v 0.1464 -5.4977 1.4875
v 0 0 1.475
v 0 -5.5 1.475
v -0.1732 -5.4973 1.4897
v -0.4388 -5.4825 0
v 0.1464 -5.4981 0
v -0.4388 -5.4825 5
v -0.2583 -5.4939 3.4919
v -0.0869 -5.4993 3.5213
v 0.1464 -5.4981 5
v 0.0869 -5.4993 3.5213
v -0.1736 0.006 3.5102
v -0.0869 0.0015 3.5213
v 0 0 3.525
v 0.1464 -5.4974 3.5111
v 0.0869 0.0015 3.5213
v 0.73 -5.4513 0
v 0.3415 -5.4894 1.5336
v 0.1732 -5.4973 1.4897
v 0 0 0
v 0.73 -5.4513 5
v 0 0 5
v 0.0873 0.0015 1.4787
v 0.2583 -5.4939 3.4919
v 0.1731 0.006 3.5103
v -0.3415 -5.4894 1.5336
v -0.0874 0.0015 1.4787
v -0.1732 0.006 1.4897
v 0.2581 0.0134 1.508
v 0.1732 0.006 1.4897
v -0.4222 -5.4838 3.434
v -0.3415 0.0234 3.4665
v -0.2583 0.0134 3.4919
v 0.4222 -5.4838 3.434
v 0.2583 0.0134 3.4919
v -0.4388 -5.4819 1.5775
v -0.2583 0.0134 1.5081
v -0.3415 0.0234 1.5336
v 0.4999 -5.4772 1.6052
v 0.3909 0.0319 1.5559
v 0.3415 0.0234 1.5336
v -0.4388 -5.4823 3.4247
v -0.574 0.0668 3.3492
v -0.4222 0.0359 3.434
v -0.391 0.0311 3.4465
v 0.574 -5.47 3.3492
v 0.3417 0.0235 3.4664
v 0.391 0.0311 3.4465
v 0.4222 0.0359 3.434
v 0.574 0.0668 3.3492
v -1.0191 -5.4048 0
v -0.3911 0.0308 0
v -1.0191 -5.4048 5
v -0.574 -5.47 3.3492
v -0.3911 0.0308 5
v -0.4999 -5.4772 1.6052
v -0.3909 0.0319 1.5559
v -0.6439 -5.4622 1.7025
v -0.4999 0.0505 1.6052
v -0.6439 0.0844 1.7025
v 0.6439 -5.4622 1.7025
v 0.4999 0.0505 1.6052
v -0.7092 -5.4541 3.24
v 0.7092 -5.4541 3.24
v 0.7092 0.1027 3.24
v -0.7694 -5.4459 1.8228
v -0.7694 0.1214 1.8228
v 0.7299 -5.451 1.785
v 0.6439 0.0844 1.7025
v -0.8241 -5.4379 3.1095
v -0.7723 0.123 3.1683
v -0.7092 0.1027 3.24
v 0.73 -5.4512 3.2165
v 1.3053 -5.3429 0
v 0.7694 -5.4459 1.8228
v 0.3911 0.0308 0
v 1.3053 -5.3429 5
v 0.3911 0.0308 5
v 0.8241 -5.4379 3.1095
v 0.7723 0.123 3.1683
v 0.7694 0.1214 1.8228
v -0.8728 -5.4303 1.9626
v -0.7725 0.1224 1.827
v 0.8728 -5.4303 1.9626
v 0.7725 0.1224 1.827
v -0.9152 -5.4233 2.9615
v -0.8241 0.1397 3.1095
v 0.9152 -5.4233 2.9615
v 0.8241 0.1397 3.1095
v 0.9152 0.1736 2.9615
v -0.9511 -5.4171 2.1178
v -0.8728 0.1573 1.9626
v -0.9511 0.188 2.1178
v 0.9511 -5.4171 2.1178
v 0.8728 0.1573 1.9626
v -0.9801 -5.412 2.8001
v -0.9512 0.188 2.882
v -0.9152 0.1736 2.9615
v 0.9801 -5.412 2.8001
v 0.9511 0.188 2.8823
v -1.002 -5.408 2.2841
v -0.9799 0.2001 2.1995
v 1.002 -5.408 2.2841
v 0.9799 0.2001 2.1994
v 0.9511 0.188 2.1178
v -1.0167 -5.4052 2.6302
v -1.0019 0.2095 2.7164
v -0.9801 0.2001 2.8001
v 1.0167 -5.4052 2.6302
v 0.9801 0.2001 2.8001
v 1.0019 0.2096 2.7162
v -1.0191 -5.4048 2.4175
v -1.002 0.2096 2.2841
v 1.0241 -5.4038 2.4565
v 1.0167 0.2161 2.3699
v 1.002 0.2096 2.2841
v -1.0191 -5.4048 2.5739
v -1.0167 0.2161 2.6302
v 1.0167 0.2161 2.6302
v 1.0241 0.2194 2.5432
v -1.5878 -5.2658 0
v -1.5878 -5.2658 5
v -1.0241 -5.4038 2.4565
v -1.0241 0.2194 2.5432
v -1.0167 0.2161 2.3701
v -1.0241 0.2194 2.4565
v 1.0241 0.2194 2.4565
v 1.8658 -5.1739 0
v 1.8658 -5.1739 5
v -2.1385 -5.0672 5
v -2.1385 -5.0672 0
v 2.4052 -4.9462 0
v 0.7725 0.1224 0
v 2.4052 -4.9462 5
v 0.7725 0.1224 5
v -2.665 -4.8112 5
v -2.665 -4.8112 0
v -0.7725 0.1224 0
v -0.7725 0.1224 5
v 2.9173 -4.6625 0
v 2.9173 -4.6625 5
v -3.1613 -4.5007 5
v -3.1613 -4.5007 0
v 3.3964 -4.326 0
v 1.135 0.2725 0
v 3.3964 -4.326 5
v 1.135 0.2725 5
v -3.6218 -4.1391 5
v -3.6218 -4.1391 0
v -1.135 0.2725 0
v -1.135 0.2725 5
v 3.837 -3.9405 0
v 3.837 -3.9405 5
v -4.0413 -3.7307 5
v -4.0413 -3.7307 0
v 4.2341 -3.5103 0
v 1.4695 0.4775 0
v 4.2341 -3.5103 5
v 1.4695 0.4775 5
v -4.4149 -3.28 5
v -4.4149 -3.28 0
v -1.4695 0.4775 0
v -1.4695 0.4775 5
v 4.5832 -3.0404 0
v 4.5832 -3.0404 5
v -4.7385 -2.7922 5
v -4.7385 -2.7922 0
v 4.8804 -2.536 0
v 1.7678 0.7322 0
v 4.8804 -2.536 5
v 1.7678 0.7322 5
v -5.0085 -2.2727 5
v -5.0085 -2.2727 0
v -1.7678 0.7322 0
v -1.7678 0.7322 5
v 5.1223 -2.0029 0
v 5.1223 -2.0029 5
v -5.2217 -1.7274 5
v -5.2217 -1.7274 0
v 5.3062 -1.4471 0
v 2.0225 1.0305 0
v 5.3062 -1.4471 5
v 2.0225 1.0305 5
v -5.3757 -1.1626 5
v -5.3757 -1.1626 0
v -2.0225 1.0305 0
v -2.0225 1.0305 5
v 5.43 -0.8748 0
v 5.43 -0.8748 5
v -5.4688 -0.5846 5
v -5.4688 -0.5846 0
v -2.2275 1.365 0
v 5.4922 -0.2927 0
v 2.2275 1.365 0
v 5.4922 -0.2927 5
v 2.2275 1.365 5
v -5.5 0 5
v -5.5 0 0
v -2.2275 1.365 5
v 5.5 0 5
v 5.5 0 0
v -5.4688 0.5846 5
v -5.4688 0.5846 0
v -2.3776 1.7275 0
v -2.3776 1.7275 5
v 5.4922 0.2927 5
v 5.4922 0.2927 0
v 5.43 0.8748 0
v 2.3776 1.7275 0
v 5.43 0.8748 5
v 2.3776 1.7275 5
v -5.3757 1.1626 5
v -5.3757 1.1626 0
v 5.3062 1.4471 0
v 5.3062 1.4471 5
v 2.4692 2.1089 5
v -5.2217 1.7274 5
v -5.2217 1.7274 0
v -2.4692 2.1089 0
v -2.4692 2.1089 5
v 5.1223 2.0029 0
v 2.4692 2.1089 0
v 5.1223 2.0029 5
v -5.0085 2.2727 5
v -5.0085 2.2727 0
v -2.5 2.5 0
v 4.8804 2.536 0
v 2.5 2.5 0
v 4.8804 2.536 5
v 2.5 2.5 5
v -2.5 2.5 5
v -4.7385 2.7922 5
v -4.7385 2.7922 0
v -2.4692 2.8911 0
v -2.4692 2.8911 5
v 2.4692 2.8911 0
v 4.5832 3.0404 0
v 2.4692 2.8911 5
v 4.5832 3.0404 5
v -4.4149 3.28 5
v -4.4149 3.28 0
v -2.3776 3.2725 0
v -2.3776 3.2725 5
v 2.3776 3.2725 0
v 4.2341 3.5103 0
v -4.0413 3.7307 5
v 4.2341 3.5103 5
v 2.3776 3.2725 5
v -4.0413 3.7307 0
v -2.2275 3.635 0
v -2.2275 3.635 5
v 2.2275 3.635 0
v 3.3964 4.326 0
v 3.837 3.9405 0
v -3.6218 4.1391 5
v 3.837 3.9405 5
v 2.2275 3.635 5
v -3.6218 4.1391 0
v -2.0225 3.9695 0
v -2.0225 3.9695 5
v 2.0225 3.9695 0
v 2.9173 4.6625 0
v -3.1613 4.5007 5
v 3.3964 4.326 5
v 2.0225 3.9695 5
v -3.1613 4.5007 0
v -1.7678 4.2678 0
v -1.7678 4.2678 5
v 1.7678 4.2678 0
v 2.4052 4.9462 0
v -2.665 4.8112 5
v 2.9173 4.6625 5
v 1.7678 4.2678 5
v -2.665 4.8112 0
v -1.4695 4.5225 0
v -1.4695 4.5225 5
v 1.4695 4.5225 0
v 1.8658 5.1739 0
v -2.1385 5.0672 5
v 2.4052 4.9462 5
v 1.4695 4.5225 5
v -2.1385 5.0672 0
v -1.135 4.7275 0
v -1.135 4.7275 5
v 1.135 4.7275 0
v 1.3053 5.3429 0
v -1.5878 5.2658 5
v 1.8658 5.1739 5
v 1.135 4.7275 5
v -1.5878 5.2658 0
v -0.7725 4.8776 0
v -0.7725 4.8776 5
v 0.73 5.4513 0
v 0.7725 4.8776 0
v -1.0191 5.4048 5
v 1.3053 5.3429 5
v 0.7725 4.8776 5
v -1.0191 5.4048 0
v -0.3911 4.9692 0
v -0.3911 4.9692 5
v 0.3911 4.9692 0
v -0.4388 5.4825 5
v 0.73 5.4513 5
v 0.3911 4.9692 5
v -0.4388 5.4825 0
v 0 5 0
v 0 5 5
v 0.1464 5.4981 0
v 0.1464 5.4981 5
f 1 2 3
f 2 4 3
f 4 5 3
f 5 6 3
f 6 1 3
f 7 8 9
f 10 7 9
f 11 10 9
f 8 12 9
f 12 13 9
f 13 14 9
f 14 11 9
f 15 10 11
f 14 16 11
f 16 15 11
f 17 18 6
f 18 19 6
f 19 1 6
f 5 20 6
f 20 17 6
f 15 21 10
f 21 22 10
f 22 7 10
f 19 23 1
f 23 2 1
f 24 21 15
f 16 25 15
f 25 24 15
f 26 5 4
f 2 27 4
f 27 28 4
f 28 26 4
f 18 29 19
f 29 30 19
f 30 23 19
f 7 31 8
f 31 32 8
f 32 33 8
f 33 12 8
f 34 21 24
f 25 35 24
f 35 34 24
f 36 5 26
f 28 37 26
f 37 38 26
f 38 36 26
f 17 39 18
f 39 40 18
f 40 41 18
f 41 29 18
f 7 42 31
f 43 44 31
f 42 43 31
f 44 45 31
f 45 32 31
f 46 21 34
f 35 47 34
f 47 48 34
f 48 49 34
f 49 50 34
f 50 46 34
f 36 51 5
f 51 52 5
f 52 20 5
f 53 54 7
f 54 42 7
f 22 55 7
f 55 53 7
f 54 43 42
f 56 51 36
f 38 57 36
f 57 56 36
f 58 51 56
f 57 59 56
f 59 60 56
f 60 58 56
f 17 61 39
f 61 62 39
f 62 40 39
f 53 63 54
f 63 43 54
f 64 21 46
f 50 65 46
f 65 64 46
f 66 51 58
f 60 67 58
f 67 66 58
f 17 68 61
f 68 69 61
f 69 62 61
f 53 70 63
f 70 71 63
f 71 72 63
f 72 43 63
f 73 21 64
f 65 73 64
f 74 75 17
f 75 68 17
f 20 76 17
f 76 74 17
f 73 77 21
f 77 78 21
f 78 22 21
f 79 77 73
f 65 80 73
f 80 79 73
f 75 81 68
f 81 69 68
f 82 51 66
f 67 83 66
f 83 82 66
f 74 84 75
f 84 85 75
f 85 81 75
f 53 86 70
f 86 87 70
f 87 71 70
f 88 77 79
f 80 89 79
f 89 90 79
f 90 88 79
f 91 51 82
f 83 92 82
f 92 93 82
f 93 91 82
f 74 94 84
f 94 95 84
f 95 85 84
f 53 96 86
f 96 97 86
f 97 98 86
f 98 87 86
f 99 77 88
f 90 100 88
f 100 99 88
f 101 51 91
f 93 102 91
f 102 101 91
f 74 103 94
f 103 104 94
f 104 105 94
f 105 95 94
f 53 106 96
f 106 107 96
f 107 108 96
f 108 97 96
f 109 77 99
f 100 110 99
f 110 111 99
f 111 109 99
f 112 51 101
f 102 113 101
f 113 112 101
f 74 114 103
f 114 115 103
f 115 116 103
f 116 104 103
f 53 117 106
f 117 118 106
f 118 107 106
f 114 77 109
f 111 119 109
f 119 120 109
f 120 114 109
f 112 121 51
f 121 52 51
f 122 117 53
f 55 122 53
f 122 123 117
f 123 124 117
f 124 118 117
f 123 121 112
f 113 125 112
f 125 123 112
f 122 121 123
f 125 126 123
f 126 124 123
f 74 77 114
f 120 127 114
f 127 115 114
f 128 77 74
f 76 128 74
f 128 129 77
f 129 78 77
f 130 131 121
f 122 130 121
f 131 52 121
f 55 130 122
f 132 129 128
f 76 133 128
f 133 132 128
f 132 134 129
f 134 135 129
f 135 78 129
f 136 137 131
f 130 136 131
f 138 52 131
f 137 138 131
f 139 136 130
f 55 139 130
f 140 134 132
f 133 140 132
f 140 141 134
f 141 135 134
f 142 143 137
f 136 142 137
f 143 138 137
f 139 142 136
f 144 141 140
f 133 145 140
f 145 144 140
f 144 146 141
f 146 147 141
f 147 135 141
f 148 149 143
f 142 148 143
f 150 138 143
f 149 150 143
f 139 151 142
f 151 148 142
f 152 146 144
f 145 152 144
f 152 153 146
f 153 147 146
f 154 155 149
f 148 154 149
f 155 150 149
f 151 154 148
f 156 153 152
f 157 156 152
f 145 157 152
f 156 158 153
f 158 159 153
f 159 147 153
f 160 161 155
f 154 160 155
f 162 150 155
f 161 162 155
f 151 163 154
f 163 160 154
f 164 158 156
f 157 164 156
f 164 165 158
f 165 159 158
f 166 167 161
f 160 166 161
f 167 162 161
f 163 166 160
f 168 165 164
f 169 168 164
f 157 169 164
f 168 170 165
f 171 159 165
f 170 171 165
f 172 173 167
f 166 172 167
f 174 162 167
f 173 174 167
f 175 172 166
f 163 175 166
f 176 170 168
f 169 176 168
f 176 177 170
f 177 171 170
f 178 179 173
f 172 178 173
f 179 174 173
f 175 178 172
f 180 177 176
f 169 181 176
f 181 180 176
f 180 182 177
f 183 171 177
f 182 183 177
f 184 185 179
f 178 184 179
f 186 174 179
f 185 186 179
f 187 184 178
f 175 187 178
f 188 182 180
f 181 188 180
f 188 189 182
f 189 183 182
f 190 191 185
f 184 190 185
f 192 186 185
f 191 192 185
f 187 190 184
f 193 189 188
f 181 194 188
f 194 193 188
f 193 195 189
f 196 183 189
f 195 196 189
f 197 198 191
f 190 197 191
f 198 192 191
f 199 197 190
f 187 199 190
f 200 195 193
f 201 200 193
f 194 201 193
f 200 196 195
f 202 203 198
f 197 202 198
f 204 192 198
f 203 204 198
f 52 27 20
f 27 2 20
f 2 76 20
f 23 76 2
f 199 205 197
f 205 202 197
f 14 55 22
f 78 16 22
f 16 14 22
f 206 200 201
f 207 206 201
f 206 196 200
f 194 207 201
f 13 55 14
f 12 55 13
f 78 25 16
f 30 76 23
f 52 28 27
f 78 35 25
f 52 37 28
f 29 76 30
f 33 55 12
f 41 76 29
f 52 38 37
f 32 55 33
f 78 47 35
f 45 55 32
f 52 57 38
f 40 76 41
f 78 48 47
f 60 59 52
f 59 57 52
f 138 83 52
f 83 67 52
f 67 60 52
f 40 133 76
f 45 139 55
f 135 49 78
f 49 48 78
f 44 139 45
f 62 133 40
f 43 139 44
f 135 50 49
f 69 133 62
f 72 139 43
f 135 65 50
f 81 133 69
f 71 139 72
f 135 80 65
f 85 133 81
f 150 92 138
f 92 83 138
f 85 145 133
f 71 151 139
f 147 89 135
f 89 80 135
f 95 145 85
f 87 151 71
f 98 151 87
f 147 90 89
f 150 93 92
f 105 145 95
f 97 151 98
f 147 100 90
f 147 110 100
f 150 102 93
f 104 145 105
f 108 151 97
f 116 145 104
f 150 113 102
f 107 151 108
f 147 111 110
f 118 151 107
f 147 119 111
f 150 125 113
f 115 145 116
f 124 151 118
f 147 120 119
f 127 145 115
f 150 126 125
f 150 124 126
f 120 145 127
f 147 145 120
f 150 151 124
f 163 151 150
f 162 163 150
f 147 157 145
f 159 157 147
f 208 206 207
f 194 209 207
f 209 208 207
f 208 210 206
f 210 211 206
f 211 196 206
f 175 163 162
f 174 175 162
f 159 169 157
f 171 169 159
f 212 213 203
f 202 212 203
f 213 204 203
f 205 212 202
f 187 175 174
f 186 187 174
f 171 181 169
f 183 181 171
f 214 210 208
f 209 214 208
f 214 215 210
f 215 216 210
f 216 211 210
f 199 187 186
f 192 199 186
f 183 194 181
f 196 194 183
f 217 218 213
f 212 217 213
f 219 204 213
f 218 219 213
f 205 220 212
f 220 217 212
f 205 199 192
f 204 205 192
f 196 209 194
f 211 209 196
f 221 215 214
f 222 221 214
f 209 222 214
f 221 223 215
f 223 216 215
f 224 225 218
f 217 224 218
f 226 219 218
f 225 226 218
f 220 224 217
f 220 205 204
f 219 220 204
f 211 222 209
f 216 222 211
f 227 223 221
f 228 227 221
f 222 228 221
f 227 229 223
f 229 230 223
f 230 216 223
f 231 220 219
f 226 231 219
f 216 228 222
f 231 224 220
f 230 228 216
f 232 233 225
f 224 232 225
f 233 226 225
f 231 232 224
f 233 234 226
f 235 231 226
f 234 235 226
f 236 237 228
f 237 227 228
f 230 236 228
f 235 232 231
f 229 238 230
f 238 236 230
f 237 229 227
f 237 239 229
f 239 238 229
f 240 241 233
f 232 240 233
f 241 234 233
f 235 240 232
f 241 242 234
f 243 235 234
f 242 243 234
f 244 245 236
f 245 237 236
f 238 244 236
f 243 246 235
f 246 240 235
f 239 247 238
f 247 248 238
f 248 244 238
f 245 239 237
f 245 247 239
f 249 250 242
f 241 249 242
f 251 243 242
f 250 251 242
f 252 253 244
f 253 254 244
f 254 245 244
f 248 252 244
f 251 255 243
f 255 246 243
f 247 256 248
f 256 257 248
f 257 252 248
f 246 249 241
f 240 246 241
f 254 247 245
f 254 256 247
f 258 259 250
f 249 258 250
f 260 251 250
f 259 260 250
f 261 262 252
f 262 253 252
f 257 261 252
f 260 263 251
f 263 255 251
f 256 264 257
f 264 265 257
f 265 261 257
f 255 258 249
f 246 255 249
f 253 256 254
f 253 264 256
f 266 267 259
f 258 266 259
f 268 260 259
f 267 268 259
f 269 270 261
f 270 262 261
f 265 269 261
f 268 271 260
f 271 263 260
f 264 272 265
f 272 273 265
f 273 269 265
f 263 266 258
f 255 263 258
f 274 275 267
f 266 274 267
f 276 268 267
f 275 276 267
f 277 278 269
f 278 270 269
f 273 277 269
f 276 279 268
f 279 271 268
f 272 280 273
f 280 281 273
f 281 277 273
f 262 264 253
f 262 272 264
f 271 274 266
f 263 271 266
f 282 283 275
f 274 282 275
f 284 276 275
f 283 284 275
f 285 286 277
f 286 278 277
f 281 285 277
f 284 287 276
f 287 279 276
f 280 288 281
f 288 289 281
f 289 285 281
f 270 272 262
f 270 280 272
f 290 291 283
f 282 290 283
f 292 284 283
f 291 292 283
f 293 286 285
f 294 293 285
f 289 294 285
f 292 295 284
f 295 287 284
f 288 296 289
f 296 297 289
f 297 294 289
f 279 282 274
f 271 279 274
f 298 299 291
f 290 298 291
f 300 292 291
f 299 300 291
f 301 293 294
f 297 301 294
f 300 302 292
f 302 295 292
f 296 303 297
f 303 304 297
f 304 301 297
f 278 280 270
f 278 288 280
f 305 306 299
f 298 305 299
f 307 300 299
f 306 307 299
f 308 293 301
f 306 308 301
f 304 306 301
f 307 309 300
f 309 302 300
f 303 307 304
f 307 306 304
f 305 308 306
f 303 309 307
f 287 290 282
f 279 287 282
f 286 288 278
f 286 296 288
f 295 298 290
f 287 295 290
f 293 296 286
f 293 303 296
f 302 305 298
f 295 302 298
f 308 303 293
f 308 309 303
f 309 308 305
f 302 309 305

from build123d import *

# Parameters (mm, degrees)
SKETCH1_R               = 5.5
BOSS_EXTRUDE1_DEPTH     = 5
SKETCH4_R               = 2.5
CUT_EXTRUDE1_DEPTH      = 10.246621004
M2_5_TAPPED_HOLE2_D     = 2.05
M2_5_TAPPED_HOLE2_DEPTH = 8


with BuildPart() as part:
    # Sketch1 → Boss-Extrude1 (new body)
    with BuildSketch(Plane.XY):
        Circle(SKETCH1_R)
    extrude(amount=BOSS_EXTRUDE1_DEPTH)

    # Sketch4 → Cut-Extrude1 (cut, through all)
    with BuildSketch(Plane(origin=(0, 0, 0), x_dir=(-1, 0, 0), z_dir=(0, 0, -1))):
        with Locations((0, 2.5)):
            Circle(SKETCH4_R)
    extrude(amount=-CUT_EXTRUDE1_DEPTH, mode=Mode.SUBTRACT)

    # M2.5 Tapped Hole2
    with Locations(Plane(origin=(0, -5.5, 2.5), x_dir=(-1, 0, 0), z_dir=(0, -1, 0))):
        with Locations((0, 0)):
            Hole(M2_5_TAPPED_HOLE2_D / 2, depth=M2_5_TAPPED_HOLE2_DEPTH)


solid = part.part
